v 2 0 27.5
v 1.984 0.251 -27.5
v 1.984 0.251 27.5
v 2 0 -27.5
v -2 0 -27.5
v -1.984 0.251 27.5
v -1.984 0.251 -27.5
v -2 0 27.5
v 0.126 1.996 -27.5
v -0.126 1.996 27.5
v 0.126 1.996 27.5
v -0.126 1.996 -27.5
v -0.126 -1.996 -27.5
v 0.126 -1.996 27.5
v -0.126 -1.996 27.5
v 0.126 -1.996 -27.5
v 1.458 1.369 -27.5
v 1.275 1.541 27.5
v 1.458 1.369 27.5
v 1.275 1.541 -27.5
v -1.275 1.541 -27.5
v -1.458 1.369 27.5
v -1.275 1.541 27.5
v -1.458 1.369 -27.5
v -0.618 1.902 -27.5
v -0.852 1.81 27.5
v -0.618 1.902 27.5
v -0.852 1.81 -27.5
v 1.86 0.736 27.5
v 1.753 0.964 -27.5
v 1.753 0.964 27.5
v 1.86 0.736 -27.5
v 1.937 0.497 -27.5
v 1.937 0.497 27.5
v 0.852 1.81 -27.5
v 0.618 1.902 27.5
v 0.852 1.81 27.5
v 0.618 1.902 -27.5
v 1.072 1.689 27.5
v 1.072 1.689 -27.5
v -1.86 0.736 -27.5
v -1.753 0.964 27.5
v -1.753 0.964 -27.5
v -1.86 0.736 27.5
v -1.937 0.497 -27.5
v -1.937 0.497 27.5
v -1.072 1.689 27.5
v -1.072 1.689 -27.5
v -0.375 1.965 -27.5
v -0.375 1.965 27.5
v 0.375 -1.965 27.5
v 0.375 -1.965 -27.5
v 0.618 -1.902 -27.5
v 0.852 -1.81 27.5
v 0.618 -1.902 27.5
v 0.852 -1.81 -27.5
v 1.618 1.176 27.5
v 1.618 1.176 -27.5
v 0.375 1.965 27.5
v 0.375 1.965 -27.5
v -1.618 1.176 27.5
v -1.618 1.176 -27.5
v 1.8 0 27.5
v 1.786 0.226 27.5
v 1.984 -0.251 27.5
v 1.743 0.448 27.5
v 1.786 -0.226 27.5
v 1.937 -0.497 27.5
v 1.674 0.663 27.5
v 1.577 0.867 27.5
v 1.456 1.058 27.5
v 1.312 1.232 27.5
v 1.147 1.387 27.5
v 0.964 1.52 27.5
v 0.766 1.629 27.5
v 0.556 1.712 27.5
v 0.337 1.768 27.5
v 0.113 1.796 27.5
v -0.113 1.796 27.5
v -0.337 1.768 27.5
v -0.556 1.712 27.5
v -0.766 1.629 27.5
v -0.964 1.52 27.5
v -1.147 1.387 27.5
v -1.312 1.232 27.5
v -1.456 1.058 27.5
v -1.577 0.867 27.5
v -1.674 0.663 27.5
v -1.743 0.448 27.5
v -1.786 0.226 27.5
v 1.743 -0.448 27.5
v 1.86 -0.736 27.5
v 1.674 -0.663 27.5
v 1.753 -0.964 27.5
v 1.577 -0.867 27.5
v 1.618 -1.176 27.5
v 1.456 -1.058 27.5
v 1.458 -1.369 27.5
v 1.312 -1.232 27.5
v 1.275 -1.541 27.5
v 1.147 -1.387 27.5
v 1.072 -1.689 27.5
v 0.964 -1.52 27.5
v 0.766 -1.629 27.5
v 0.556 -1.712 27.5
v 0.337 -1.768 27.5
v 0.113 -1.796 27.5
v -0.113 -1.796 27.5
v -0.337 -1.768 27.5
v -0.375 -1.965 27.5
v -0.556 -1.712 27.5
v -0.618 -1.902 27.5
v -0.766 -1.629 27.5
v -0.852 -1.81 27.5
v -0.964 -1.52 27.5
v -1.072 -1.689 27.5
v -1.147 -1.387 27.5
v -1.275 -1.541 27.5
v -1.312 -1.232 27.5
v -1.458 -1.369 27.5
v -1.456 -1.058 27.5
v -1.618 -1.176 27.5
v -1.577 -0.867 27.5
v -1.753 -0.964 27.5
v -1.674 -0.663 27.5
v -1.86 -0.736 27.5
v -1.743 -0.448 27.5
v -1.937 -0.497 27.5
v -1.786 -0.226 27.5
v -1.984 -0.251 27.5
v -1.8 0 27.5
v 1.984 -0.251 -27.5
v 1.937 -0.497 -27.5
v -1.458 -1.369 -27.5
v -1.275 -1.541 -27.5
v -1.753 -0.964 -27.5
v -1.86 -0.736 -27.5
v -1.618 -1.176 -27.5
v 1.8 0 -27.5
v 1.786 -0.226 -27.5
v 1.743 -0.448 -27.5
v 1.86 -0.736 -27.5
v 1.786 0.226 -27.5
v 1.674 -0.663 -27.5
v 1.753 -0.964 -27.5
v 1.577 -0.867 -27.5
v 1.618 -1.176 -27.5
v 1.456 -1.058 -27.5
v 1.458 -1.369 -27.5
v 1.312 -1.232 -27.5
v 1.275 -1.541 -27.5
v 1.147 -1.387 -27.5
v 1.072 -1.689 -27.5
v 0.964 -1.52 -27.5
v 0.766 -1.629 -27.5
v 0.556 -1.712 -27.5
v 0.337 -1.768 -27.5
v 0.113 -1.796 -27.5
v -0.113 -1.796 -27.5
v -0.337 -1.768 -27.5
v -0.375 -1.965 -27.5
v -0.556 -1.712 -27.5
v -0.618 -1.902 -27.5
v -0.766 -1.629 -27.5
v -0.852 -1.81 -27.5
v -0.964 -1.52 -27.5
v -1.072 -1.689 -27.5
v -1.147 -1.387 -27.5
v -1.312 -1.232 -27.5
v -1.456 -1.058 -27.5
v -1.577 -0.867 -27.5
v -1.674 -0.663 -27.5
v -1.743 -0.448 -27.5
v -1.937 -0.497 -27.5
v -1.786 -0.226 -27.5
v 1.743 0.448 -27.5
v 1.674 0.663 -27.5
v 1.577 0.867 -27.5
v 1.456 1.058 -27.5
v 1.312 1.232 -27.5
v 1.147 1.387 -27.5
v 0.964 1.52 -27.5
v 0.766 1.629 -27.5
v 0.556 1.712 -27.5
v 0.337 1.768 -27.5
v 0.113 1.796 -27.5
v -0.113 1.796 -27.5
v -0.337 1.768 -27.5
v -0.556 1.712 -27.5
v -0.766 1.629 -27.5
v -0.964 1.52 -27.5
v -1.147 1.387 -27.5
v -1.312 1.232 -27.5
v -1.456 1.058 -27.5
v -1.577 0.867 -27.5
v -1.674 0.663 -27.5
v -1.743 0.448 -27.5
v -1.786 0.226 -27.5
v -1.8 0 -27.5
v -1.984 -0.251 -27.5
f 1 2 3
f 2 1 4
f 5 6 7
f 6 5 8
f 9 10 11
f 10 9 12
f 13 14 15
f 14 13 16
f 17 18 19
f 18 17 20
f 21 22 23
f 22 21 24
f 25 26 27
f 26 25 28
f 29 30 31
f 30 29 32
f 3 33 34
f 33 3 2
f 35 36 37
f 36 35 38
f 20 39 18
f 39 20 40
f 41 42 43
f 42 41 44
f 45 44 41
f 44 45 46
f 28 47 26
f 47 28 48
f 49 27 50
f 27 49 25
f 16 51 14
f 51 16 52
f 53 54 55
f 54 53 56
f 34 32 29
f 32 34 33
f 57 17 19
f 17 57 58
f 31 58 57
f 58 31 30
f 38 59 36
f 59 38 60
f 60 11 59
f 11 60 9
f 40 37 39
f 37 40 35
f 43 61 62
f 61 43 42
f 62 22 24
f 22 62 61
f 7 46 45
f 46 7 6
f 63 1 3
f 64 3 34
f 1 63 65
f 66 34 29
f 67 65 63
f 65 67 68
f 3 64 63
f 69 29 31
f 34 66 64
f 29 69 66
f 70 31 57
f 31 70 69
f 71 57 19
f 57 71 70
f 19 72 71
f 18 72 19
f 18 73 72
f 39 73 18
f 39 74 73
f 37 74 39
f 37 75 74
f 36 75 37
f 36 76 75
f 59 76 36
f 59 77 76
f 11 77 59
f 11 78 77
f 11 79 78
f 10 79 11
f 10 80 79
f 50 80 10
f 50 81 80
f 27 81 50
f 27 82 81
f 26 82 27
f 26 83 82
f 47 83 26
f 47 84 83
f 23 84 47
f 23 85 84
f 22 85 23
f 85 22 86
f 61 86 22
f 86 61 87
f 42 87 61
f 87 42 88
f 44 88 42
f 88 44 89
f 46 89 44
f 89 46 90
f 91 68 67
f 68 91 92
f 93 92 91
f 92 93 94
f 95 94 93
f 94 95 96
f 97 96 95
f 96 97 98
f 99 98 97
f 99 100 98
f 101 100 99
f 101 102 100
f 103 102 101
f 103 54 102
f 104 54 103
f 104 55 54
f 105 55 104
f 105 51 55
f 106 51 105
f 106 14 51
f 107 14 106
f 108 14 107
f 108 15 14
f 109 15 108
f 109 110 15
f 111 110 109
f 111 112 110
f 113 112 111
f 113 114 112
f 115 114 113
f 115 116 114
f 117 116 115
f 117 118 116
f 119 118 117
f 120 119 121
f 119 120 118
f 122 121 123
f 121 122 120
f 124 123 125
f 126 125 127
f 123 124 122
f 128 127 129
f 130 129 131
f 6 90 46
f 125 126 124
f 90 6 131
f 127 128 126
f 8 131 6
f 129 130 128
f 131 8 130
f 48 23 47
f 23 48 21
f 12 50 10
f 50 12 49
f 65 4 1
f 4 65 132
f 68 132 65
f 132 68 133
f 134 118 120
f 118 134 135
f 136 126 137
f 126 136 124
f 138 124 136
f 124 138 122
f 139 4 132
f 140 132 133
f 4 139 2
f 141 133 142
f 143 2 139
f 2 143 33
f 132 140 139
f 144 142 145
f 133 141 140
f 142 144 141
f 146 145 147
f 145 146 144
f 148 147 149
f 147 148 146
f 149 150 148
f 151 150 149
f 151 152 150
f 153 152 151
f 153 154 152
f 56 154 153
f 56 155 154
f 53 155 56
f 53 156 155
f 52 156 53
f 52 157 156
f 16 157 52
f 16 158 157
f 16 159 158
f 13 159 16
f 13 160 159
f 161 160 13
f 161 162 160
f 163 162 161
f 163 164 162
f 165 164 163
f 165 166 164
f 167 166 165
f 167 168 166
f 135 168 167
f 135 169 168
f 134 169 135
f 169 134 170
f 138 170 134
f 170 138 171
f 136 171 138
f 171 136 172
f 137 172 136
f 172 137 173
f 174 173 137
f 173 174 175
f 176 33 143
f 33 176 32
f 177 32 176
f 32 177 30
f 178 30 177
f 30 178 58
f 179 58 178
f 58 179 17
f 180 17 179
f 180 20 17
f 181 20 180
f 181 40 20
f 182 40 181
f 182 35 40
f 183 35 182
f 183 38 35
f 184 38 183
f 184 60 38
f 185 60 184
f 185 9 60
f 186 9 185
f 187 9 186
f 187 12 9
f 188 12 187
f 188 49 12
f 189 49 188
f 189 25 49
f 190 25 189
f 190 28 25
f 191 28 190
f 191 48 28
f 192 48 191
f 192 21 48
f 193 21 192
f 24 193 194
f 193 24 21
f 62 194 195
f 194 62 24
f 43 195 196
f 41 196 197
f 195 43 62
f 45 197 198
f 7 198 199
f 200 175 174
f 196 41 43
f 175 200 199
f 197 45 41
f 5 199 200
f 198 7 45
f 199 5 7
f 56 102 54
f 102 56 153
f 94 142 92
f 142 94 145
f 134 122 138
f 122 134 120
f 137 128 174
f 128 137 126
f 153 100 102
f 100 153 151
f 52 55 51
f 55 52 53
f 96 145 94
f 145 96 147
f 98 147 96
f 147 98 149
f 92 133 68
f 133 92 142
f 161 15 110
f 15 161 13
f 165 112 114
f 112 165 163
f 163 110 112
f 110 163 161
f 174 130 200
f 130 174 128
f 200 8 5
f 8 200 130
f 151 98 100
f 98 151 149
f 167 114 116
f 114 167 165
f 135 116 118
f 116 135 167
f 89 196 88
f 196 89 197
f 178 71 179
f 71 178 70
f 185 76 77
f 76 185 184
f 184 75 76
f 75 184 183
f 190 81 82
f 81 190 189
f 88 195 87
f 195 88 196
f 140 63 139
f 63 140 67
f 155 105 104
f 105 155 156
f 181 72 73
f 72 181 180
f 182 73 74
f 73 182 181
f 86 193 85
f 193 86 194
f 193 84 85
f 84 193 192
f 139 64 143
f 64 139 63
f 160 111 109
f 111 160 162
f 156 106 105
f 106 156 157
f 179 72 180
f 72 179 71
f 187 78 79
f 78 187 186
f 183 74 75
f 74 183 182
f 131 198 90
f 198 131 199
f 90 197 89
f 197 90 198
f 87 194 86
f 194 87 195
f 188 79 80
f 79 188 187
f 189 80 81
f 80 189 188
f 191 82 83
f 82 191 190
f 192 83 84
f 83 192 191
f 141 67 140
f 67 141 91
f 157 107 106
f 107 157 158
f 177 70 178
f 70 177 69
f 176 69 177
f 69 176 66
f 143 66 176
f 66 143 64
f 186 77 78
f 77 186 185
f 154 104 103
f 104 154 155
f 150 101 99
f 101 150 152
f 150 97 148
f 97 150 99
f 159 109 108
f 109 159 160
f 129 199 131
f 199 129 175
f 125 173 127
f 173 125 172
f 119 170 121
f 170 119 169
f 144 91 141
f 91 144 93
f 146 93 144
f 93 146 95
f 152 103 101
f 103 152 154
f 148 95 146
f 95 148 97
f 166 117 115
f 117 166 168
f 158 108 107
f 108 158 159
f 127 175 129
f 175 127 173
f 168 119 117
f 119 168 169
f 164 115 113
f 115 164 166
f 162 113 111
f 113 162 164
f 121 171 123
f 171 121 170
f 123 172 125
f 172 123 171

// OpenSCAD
$fn = 50;


difference() {
	union() {
		translate(v = [0, 0, -27.5000000000]) {
			cylinder(h = 55, r = 2.0000000000);
		}
	}
	union() {
		translate(v = [0, 0, -100.0000000000]) {
			cylinder(h = 200, r = 1.8000000000);
		}
	}
}
